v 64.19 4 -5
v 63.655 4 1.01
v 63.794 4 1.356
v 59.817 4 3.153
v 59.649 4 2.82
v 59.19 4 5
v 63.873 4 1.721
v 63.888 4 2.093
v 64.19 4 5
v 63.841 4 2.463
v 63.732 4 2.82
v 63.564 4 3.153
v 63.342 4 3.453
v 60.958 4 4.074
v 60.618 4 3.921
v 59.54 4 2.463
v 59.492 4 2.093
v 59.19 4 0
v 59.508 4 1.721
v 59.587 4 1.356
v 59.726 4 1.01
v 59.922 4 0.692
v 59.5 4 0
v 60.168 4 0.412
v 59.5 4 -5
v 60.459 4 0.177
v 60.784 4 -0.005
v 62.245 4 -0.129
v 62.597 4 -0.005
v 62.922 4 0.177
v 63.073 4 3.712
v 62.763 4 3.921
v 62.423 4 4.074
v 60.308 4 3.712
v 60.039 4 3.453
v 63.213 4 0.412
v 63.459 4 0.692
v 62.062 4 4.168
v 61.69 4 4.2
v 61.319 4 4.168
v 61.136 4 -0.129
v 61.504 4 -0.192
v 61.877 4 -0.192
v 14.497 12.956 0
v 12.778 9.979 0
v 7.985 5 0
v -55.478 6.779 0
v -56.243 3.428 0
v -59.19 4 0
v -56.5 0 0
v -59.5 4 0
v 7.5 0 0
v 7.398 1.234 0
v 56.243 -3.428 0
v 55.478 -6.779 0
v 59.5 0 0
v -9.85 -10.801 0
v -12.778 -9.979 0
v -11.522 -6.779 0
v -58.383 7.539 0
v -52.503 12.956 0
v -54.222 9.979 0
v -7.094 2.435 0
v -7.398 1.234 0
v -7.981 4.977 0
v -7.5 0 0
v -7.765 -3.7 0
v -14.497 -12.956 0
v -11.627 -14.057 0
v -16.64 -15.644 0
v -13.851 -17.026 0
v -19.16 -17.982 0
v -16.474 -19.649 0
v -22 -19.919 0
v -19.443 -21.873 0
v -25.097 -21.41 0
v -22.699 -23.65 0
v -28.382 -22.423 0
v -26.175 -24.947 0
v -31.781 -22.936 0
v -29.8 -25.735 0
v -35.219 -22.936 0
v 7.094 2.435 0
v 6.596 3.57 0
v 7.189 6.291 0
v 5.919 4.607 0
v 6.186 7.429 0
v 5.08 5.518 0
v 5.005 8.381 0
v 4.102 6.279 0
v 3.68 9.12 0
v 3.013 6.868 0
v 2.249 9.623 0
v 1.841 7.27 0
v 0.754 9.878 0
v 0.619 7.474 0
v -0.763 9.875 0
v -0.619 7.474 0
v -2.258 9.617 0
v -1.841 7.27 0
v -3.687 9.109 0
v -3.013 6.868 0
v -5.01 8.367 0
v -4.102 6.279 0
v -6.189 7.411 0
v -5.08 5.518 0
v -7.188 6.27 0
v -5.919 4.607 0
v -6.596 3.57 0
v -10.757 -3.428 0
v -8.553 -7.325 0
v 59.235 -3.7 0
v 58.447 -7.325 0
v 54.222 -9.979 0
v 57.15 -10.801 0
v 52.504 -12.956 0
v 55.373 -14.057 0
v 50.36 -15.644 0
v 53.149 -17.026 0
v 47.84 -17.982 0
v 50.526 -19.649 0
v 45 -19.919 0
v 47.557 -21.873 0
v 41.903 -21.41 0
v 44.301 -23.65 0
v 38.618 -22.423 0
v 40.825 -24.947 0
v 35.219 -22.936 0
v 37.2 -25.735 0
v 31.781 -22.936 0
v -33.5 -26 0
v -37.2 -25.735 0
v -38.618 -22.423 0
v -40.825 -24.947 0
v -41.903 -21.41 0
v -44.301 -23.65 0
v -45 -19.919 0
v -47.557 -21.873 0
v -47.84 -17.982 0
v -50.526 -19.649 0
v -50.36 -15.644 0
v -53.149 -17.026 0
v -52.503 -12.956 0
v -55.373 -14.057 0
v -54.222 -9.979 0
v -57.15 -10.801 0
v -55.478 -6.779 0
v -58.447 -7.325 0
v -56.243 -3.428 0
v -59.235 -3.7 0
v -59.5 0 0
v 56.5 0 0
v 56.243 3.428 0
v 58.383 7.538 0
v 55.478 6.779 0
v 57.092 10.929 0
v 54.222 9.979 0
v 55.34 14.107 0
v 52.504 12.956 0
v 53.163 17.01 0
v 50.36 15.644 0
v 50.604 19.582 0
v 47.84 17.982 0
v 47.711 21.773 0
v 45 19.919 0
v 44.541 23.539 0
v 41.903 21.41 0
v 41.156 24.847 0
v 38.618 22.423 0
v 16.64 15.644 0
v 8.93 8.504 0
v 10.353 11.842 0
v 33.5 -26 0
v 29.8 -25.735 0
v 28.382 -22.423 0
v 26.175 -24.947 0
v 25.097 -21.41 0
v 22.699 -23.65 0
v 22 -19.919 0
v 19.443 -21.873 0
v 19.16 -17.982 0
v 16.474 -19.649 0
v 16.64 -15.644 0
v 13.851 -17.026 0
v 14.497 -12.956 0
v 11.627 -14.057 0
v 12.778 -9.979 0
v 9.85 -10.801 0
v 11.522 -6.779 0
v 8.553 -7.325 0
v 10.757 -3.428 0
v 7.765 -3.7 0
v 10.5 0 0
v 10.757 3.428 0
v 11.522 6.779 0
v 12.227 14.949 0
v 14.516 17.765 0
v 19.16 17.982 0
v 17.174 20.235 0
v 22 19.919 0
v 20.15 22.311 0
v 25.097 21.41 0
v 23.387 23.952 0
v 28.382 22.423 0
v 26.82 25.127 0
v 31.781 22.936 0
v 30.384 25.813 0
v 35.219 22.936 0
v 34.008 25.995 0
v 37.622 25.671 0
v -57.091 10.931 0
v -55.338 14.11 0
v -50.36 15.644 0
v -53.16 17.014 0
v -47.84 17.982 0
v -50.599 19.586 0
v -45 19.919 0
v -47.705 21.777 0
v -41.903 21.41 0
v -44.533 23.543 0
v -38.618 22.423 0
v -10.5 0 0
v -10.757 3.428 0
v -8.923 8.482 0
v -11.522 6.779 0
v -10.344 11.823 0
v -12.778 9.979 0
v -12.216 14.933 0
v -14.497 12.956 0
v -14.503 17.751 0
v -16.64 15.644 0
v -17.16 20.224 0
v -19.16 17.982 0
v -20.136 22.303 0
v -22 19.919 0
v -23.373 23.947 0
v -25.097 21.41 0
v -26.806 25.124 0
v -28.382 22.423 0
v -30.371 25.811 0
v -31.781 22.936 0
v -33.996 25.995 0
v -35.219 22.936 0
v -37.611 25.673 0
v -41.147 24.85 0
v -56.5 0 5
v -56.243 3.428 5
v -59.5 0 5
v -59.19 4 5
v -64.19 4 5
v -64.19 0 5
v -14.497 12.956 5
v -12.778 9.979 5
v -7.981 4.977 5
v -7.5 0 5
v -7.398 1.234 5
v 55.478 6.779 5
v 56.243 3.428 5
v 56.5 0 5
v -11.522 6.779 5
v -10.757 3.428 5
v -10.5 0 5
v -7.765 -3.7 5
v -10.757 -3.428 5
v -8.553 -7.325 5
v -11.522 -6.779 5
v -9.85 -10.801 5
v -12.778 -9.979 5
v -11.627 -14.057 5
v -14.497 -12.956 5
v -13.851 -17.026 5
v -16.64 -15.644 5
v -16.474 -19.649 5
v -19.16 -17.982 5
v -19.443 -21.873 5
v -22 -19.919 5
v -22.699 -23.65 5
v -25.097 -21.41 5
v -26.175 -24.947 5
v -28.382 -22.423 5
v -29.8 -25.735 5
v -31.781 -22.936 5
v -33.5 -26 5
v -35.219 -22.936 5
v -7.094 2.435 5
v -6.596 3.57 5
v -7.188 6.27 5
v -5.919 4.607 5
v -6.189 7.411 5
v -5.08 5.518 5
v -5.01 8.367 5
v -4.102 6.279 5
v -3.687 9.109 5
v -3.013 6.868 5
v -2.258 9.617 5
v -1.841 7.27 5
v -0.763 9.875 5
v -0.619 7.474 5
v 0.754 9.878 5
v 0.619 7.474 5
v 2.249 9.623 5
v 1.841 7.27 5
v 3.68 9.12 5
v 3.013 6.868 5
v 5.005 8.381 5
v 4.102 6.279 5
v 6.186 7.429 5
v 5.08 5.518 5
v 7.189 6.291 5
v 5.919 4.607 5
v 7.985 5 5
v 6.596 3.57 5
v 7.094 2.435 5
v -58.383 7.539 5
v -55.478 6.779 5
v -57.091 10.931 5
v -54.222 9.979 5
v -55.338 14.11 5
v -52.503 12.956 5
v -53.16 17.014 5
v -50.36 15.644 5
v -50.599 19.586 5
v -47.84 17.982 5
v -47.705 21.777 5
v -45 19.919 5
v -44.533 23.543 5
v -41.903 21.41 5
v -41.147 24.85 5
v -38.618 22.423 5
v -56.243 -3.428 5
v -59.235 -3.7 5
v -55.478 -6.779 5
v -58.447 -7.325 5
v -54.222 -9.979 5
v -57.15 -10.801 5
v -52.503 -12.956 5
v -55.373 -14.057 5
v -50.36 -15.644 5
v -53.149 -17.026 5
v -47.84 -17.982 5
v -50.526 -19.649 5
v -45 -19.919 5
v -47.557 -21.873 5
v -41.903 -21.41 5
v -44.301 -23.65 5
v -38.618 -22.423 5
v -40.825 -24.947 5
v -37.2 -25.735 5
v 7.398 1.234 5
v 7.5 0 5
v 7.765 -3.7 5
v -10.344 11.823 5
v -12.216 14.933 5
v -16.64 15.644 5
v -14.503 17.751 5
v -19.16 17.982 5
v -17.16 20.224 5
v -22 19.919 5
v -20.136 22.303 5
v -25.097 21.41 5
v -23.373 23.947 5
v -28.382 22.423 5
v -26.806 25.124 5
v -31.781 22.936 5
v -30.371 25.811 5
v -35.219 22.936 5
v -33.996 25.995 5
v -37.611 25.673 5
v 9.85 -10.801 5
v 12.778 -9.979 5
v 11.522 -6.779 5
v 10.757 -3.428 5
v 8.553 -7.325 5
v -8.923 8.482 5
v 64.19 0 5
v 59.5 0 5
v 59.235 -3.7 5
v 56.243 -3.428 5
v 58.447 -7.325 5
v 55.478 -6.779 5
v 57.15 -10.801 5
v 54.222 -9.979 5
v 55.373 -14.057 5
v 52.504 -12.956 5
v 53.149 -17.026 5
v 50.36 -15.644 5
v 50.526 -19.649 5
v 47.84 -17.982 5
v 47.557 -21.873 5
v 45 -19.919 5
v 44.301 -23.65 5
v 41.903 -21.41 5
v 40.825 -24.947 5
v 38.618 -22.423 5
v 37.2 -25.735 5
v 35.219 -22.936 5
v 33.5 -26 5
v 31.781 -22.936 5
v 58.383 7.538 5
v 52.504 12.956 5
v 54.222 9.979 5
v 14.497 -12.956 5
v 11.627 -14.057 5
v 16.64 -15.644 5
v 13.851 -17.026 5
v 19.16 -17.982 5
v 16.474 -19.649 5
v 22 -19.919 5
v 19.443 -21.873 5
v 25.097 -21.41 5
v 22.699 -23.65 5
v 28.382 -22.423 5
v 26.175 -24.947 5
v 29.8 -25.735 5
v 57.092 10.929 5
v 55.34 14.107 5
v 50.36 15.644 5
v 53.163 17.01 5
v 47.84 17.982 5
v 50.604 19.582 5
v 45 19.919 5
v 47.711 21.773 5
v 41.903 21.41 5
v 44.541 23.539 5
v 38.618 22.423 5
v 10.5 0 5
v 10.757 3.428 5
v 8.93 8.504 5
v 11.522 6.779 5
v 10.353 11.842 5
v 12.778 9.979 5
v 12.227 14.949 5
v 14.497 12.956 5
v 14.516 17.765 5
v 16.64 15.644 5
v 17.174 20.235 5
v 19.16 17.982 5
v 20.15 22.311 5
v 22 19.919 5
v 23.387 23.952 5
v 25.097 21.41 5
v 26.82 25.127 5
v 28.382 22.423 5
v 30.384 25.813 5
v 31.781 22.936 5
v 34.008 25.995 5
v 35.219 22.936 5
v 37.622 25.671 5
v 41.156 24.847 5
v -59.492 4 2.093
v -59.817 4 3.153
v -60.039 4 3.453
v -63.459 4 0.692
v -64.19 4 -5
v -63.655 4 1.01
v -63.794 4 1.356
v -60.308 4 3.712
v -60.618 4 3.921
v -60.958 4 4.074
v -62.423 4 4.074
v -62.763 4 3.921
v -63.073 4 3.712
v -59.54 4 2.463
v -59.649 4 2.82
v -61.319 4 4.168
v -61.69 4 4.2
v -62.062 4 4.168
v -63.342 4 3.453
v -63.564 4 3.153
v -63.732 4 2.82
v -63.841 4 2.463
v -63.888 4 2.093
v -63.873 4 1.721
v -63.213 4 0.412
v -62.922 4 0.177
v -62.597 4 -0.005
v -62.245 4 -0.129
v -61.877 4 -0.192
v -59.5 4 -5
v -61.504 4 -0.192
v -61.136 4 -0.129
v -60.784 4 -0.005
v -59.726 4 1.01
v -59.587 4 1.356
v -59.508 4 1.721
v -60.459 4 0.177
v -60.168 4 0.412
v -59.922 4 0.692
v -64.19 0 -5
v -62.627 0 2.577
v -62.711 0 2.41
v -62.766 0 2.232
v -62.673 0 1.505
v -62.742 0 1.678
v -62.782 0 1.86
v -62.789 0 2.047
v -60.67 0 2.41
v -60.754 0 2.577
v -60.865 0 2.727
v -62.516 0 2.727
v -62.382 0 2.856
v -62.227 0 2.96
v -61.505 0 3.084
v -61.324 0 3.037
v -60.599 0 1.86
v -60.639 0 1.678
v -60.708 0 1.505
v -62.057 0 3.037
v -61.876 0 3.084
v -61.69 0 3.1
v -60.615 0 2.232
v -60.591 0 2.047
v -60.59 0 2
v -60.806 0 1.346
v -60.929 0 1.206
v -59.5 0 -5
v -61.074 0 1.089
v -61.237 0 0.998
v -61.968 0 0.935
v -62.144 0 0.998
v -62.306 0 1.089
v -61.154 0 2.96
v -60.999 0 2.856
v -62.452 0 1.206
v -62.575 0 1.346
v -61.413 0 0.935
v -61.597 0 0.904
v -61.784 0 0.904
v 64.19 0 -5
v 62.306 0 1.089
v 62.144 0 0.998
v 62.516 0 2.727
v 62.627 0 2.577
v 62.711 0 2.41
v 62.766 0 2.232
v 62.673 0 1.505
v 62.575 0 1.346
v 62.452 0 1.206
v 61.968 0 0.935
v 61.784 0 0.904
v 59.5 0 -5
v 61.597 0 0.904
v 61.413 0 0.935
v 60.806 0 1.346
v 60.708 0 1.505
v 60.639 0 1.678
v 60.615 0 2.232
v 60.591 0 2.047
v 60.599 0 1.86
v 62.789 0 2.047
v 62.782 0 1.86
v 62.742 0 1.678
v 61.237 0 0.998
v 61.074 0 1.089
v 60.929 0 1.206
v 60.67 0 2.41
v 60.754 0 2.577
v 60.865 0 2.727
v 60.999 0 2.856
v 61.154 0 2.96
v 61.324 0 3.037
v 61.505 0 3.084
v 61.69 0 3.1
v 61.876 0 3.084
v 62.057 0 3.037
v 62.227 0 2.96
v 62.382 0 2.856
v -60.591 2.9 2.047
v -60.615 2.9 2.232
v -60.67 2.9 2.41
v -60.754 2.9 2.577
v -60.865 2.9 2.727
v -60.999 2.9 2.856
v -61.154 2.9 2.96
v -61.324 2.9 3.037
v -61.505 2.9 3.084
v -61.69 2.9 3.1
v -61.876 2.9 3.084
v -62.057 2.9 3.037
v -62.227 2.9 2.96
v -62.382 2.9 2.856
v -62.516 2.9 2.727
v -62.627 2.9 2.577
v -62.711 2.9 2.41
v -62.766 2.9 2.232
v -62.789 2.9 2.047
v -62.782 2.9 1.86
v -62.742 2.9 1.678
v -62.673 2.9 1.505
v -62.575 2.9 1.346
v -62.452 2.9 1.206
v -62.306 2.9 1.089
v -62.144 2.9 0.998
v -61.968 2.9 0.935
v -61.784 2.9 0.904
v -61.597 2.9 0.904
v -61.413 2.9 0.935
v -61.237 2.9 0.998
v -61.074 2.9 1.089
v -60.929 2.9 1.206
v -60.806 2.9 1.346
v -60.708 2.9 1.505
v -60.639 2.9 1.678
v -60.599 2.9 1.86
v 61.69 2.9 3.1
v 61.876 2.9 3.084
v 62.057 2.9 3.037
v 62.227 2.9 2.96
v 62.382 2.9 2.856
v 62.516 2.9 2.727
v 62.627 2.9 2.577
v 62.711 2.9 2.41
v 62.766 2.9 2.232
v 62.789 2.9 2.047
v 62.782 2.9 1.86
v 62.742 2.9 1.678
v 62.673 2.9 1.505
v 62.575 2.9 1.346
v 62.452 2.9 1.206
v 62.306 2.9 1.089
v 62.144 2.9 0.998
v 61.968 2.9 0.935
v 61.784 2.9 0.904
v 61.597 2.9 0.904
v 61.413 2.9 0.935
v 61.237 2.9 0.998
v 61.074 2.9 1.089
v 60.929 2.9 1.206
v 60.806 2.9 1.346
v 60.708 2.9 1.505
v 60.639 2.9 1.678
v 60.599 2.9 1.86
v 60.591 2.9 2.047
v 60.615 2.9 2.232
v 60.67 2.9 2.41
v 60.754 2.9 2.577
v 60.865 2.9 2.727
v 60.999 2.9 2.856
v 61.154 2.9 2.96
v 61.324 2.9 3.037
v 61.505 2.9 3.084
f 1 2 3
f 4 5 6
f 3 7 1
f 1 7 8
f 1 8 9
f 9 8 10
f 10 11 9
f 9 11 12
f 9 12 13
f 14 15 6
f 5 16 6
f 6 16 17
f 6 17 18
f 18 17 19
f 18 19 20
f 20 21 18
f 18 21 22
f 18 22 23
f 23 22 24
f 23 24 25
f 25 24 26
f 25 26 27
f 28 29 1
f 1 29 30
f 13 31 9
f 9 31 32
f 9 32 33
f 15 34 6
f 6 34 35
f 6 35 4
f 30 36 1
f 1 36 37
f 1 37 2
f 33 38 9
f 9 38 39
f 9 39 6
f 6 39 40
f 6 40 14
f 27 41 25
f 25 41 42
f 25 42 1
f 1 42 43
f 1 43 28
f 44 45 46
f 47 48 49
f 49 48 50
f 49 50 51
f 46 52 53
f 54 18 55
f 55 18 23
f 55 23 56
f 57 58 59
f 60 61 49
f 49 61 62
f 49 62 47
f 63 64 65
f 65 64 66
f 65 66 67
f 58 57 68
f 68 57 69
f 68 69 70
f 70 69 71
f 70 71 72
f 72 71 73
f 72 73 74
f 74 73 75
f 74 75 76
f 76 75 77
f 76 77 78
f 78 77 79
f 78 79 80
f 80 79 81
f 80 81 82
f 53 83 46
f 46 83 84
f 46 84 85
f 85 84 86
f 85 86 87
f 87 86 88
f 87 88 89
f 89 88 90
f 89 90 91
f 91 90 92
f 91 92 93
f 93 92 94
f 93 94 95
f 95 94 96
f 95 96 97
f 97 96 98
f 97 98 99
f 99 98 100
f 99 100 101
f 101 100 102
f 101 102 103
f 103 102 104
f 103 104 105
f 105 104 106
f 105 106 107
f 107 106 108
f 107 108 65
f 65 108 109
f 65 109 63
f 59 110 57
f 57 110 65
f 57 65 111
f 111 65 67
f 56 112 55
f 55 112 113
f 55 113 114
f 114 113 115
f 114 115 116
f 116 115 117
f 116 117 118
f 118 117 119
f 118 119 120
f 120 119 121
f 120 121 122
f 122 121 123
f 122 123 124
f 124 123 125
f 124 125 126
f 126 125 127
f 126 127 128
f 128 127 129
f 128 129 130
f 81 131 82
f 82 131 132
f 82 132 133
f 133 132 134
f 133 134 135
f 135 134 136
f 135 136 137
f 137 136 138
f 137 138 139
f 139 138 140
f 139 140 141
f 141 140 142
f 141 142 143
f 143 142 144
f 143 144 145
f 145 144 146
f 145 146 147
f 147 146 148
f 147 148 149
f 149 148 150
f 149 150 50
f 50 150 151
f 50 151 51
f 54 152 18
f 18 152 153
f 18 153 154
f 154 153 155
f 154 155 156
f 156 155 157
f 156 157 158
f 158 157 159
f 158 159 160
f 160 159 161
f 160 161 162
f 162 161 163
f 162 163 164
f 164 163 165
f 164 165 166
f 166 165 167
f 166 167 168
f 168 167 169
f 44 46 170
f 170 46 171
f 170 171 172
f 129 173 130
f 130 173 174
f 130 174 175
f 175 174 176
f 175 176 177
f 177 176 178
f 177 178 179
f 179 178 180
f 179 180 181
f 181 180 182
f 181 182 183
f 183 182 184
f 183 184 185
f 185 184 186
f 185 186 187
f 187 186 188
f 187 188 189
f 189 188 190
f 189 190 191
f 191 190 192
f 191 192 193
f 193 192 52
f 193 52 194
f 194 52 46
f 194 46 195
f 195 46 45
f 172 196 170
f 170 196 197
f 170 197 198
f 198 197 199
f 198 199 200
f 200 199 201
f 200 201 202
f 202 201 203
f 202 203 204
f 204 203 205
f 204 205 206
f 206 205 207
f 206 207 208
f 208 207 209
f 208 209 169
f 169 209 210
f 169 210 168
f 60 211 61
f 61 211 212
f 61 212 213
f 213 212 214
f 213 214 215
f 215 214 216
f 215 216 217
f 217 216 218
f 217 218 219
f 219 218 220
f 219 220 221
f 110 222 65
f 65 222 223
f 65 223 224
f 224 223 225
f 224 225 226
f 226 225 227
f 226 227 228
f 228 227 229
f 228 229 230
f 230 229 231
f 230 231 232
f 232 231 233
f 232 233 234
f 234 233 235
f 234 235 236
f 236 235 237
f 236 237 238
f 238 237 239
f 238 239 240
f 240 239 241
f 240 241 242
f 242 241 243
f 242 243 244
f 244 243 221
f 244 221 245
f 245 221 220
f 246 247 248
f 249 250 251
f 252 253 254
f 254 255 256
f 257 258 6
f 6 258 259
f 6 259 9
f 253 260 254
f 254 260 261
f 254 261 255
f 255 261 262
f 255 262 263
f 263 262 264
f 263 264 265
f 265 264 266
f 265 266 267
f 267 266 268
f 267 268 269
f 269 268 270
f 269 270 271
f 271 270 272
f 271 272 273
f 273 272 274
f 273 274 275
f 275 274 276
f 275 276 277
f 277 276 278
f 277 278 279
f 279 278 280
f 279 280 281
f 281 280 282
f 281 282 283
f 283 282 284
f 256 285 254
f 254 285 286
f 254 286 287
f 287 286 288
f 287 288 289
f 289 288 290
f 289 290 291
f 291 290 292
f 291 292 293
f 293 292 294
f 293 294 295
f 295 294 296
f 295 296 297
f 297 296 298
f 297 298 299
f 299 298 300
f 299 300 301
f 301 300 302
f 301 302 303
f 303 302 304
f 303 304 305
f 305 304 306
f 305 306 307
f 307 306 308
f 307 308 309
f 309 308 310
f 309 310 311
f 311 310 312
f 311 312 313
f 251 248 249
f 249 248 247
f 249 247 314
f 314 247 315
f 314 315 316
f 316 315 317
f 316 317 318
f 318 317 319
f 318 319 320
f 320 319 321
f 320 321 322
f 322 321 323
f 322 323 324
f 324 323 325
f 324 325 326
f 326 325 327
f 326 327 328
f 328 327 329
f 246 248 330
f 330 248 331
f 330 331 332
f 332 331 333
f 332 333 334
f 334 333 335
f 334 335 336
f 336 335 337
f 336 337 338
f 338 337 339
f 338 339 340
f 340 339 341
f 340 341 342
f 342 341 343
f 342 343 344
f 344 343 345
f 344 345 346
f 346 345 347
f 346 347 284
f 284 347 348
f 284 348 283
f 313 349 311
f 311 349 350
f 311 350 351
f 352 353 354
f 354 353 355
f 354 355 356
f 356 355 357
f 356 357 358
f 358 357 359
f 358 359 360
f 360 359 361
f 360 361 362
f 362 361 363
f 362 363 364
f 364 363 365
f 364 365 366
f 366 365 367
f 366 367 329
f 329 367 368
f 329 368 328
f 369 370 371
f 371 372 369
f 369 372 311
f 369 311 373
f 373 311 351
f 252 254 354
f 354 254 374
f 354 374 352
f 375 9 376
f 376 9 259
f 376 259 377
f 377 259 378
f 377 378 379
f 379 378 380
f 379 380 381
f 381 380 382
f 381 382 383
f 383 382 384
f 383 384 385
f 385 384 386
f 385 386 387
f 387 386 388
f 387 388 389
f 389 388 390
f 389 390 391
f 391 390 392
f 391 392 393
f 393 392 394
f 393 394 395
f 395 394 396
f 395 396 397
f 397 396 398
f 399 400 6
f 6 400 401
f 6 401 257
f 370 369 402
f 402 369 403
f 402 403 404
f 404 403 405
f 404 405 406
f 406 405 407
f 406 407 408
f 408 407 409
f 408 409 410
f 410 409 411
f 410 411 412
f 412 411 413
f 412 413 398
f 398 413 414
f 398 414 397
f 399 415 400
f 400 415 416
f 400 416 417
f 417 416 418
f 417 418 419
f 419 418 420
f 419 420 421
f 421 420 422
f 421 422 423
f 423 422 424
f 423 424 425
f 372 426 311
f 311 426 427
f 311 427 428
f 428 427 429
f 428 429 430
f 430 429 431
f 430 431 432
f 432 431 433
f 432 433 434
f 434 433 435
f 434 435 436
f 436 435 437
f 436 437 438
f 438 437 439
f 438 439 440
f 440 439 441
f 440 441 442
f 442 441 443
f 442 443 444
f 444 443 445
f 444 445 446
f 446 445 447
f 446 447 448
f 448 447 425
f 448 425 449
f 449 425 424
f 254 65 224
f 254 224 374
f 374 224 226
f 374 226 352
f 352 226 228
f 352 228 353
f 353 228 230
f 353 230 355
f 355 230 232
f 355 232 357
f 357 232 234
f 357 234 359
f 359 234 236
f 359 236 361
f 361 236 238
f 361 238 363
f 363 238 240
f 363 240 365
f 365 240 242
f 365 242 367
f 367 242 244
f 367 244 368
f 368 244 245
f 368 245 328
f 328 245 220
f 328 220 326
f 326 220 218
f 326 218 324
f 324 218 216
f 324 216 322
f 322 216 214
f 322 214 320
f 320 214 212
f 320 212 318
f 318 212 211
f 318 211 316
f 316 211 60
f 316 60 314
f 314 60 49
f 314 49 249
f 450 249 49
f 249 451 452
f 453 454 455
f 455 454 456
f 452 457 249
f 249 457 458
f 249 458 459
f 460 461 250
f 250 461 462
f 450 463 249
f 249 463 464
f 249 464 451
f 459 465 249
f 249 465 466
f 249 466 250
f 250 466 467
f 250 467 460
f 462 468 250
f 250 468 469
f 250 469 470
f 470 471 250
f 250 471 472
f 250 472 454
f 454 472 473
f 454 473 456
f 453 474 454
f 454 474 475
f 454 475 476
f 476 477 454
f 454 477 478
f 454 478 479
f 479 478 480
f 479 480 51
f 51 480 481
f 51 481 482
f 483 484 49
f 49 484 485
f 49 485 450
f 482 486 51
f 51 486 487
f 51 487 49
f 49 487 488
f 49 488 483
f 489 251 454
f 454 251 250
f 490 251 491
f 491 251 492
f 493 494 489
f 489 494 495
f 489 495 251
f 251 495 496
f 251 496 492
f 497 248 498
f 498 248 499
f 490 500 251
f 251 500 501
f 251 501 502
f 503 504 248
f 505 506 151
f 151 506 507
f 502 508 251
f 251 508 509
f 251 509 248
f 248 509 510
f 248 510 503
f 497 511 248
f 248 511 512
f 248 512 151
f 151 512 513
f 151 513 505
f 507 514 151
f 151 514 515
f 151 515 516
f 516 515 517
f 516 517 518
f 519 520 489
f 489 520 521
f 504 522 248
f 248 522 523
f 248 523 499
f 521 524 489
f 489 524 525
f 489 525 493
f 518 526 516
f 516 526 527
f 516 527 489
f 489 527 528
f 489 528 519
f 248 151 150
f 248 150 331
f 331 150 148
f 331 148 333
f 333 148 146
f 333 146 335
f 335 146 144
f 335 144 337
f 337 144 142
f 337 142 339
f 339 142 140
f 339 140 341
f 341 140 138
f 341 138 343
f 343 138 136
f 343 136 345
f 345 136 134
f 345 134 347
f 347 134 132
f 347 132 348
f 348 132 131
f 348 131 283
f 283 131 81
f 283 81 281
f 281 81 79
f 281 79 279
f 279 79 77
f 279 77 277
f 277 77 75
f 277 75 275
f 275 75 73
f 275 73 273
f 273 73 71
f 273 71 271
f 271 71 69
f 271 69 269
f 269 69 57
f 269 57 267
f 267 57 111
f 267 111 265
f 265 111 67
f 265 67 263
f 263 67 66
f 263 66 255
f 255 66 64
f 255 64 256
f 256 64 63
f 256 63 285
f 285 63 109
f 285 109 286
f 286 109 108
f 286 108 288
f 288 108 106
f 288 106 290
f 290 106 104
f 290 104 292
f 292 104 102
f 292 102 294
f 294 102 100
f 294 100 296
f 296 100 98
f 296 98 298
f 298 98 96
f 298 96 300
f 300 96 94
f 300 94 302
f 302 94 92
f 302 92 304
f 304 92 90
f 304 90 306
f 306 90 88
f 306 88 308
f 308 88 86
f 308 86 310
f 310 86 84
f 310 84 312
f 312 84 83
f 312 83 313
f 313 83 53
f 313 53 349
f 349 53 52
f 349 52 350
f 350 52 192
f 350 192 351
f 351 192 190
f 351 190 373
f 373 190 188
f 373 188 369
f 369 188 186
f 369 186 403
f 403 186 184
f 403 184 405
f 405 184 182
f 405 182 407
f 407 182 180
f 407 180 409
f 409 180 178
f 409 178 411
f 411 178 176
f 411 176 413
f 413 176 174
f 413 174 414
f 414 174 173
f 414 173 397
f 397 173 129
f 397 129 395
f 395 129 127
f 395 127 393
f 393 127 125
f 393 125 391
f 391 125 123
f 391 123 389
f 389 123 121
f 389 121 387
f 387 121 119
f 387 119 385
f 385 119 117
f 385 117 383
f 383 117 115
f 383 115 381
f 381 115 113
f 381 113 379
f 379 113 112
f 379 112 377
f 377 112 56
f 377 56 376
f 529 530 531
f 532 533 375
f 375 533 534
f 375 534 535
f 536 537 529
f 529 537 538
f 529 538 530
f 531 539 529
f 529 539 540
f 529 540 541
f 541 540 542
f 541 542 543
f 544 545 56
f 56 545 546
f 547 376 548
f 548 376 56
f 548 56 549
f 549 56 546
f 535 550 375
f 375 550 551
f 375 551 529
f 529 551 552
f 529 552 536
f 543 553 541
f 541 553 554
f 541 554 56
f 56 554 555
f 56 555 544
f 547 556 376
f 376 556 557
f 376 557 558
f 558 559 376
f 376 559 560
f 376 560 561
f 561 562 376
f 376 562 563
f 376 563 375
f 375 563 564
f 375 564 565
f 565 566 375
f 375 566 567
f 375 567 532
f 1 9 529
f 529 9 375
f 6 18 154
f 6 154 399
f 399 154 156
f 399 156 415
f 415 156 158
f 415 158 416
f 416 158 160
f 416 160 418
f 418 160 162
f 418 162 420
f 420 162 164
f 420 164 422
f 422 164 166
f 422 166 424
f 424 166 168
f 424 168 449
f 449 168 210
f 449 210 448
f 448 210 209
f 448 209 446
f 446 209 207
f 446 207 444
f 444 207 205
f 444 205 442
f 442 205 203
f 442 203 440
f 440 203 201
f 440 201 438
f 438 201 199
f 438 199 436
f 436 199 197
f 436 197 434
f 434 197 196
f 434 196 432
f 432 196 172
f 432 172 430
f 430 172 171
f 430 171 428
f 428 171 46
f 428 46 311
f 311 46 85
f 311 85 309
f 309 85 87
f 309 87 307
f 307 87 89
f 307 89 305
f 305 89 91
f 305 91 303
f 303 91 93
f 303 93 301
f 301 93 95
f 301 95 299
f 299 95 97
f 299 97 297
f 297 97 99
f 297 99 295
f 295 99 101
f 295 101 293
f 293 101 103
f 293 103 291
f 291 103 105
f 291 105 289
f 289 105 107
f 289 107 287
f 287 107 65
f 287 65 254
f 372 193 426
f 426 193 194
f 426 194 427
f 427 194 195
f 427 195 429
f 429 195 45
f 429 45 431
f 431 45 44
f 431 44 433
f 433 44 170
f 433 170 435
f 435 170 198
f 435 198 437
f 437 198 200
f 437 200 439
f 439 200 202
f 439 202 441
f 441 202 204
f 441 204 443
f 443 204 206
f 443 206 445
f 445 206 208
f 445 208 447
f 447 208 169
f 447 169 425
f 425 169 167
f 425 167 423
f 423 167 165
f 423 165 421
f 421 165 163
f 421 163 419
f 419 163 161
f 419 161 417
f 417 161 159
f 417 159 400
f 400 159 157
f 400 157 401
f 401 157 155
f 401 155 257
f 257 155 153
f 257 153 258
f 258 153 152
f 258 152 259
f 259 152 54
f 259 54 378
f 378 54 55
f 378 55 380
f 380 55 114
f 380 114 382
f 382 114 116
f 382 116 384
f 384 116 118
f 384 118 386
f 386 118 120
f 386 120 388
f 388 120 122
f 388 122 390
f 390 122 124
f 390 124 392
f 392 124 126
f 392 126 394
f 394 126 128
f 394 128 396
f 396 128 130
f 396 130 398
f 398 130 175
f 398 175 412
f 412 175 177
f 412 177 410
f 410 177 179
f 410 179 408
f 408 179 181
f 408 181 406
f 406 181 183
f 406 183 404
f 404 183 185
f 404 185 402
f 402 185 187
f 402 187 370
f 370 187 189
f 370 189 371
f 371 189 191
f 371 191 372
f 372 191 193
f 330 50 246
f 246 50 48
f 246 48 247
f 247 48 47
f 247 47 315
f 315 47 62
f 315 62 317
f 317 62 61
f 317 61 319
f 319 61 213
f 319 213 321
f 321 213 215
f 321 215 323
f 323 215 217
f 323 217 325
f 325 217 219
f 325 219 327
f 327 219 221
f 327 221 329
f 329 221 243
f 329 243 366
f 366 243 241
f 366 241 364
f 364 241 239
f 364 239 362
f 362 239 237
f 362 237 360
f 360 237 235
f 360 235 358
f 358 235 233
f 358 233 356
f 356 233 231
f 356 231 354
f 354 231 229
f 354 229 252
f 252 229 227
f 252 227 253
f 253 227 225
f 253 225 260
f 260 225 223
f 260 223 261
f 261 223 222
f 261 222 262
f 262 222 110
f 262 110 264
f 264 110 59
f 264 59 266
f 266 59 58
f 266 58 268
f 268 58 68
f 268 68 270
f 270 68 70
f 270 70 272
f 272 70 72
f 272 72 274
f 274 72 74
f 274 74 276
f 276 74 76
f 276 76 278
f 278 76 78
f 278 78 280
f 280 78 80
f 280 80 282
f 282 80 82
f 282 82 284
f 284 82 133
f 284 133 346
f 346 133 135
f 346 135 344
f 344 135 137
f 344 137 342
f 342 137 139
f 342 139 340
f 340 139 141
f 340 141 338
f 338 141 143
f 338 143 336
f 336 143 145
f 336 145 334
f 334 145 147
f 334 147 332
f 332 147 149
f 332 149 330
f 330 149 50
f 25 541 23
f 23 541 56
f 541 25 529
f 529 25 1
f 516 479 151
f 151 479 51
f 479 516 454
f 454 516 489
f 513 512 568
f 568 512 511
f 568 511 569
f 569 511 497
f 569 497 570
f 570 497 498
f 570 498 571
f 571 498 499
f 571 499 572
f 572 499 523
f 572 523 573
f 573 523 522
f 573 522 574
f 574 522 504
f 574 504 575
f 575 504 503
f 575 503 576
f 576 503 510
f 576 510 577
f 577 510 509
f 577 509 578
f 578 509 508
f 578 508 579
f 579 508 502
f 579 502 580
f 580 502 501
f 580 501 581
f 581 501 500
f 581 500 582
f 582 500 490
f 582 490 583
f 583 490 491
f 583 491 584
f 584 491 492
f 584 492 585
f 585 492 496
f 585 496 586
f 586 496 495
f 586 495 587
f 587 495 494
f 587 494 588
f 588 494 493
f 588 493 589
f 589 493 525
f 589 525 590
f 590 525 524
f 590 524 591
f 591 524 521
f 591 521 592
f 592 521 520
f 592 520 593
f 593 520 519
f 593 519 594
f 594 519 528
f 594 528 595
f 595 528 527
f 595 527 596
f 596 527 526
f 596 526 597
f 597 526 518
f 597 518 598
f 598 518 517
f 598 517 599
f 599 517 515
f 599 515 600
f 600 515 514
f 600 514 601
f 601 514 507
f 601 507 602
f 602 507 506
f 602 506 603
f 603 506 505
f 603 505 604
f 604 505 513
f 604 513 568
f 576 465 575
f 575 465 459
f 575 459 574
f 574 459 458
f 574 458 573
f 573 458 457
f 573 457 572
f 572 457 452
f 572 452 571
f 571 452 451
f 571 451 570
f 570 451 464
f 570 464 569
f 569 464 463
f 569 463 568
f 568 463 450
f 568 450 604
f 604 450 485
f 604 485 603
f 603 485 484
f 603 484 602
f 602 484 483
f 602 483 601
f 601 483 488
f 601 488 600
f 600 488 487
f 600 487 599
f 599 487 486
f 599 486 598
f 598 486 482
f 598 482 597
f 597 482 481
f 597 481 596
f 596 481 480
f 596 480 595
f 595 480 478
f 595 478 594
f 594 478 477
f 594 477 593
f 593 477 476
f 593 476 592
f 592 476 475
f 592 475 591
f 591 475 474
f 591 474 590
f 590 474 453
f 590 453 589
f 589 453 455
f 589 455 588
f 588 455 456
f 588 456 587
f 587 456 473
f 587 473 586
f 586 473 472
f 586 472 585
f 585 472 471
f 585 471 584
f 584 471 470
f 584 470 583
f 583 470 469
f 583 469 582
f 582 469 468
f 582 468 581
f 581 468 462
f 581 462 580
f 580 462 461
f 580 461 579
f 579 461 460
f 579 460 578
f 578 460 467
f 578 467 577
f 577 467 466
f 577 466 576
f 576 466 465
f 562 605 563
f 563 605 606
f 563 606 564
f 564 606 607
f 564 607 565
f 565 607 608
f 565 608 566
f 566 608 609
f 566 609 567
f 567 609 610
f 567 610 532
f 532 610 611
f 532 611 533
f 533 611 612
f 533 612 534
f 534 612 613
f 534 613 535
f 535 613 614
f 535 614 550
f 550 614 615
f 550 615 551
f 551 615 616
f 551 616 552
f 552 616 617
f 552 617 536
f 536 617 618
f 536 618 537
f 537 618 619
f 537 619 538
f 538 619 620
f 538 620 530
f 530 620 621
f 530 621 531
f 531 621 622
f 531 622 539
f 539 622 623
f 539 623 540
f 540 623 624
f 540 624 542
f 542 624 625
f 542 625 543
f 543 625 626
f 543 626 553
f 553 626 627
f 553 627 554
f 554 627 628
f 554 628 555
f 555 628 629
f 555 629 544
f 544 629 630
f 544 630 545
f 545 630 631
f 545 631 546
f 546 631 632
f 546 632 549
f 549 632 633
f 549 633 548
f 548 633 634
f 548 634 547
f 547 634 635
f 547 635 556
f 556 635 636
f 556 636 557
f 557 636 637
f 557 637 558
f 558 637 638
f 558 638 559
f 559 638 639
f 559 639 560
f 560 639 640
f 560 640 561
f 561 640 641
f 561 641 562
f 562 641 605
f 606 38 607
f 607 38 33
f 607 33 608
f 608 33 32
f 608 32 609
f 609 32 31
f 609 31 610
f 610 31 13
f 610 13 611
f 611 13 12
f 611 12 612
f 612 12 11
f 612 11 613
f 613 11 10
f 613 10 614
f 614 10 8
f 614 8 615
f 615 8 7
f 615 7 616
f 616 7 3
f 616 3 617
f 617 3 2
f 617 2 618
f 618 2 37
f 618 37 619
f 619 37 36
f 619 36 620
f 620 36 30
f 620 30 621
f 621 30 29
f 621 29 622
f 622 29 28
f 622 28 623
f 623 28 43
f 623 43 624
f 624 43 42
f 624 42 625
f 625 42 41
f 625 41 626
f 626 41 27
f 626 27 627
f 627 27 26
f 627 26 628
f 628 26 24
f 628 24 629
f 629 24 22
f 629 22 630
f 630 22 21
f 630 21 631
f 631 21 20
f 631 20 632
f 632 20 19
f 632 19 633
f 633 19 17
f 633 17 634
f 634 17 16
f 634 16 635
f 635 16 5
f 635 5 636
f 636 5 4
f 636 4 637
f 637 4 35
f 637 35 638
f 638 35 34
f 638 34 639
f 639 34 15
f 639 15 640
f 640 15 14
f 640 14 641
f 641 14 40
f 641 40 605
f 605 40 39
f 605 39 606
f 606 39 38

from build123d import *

# Parameters (mm, degrees)
SKIZZE1_R                                            = 23
AUFSATZ_LINEAR_AUSTRAGEN1_DEPTH                      = 5
SKIZZE2_W                                            = 4.690465157
SKIZZE2_H                                            = 4
AUFSATZ_LINEAR_AUSTRAGEN2_DEPTH                      = 5
FORMSENKUNG_F_R_M2_SENKSCHRAUBE_MIT_SCHL_D           = 2.2
FORMSENKUNG_F_R_M2_SENKSCHRAUBE_MIT_SCHL_DEPTH       = 50
FORMSENKUNG_F_R_M2_SENKSCHRAUBE_MIT_SCHL_CSINK_D     = 4.4
FORMSENKUNG_F_R_M2_SENKSCHRAUBE_MIT_SCHL_CSINK_ANGLE = 90
FORMSENKUNG_F_R_M2_SENKSCHRAUBE_MIT_SCHL_TIP         = 0.660946681


with BuildPart() as part:
    # Skizze1 → Aufsatz-Linear austragen1 (new body)
    with BuildSketch(Plane.XY):
        with BuildLine():
            Line((64.190465157, 4), (59.190465157, 4))
            ThreePointArc((59.190465157, 4), (34.007664459, 25.995043312), (7.985298356, 5))
            ThreePointArc((7.985298356, 5), (-0.004875067, 9.908732253), (-7.980769231, 4.976832421))
            ThreePointArc((-7.980769231, 4.976832421), (-33.995863589, 25.995271095), (-59.190465157, 4))
            Line((-59.190465157, 4), (-64.190465157, 4))
            Line((-64.190465157, 4), (-64.190465157, 0))
            Line((-64.190465157, 0), (-59.5, 0))
            ThreePointArc((-59.5, 0), (-33.5, -26), (-7.5, 0))
            ThreePointArc((-7.5, 0), (0, 7.5), (7.5, 0))
            ThreePointArc((7.5, 0), (33.5, -26), (59.5, 0))
            Line((59.5, 0), (64.190465157, 0))
            Line((64.190465157, 0), (64.190465157, 4))
        make_face()
        with Locations((33.5, 0)):
            Circle(SKIZZE1_R, mode=Mode.SUBTRACT)
        with Locations((-33.5, 0)):
            Circle(SKIZZE1_R, mode=Mode.SUBTRACT)
    extrude(amount=AUFSATZ_LINEAR_AUSTRAGEN1_DEPTH)

    # Skizze2 → Aufsatz-Linear austragen2 (add)
    with BuildSketch(Plane(origin=(0, 0, 0), x_dir=(-1, 0, 0), z_dir=(0, 0, -1))):
        with Locations((-61.845232579, 2)):
            Rectangle(SKIZZE2_W, SKIZZE2_H)
        with Locations((61.845232579, 2)):
            Rectangle(SKIZZE2_W, SKIZZE2_H)
    extrude(amount=AUFSATZ_LINEAR_AUSTRAGEN2_DEPTH)

    # Formsenkung für M2 Senkschraube mit Schlitz/Kreuzschlitz1
    with Locations(Plane(origin=(0, 4, 0), x_dir=(1, 0, 0), z_dir=(0, 1, 0))):
        with Locations((61.690465157, -2), (-61.690465157, -2)):
            CounterSinkHole(FORMSENKUNG_F_R_M2_SENKSCHRAUBE_MIT_SCHL_D / 2, FORMSENKUNG_F_R_M2_SENKSCHRAUBE_MIT_SCHL_CSINK_D / 2, depth=FORMSENKUNG_F_R_M2_SENKSCHRAUBE_MIT_SCHL_DEPTH, counter_sink_angle=FORMSENKUNG_F_R_M2_SENKSCHRAUBE_MIT_SCHL_CSINK_ANGLE)
            with Locations((0, 0, -(FORMSENKUNG_F_R_M2_SENKSCHRAUBE_MIT_SCHL_DEPTH + FORMSENKUNG_F_R_M2_SENKSCHRAUBE_MIT_SCHL_TIP / 2))):  # 118° drill point
                Cone(0, FORMSENKUNG_F_R_M2_SENKSCHRAUBE_MIT_SCHL_D / 2, FORMSENKUNG_F_R_M2_SENKSCHRAUBE_MIT_SCHL_TIP, mode=Mode.SUBTRACT)


solid = part.part
